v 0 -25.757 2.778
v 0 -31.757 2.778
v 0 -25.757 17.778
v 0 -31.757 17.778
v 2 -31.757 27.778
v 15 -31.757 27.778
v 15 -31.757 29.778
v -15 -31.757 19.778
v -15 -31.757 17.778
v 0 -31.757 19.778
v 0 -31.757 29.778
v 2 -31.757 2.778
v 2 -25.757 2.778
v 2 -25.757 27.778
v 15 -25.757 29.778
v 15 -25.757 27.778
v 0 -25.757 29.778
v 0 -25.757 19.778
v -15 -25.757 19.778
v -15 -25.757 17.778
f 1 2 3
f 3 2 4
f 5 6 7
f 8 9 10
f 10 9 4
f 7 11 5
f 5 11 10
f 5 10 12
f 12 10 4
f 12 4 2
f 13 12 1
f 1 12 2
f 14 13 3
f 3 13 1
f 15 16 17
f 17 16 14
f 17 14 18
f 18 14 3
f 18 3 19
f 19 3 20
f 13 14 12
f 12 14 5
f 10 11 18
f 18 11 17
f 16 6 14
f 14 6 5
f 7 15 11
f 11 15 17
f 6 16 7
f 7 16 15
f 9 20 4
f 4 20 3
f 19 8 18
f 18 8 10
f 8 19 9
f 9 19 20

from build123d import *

# Parameters (mm, degrees)
ESQUISSE1_W        = 25
ESQUISSE1_H        = 6
BOSS_EXTRU_2_DEPTH = 2
ESQUISSE1_4_W      = 2
ESQUISSE1_4_H      = 6
BOSS_EXTRU_3_DEPTH = 15
ESQUISSE1_5_W      = 2
ESQUISSE1_5_H      = 6
BOSS_EXTRU_4_DEPTH = 15


with BuildPart() as part:
    # Esquisse1 → Boss.-Extru.2 (new body)
    with BuildSketch(Plane(origin=(0, 0, 0), x_dir=(0, 0, -1), z_dir=(1, 0, 0))):
        with Locations((-15.278399311, -28.757343568)):
            Rectangle(ESQUISSE1_W, ESQUISSE1_H)
    extrude(amount=BOSS_EXTRU_2_DEPTH)

    # Esquisse1<4> → Boss.-Extru.3 (add)
    with BuildSketch(Plane(origin=(0, 0, 0), x_dir=(0, 0, -1), z_dir=(1, 0, 0))):
        with Locations((-28.778399311, -28.757343568)):
            Rectangle(ESQUISSE1_4_W, ESQUISSE1_4_H)
    extrude(amount=BOSS_EXTRU_3_DEPTH)

    # Esquisse1<5> → Boss.-Extru.4 (add)
    with BuildSketch(Plane(origin=(0, 0, 0), x_dir=(0, 0, -1), z_dir=(1, 0, 0))):
        with Locations((-18.778399311, -28.757343568)):
            Rectangle(ESQUISSE1_5_W, ESQUISSE1_5_H)
    extrude(amount=-BOSS_EXTRU_4_DEPTH)


solid = part.part
